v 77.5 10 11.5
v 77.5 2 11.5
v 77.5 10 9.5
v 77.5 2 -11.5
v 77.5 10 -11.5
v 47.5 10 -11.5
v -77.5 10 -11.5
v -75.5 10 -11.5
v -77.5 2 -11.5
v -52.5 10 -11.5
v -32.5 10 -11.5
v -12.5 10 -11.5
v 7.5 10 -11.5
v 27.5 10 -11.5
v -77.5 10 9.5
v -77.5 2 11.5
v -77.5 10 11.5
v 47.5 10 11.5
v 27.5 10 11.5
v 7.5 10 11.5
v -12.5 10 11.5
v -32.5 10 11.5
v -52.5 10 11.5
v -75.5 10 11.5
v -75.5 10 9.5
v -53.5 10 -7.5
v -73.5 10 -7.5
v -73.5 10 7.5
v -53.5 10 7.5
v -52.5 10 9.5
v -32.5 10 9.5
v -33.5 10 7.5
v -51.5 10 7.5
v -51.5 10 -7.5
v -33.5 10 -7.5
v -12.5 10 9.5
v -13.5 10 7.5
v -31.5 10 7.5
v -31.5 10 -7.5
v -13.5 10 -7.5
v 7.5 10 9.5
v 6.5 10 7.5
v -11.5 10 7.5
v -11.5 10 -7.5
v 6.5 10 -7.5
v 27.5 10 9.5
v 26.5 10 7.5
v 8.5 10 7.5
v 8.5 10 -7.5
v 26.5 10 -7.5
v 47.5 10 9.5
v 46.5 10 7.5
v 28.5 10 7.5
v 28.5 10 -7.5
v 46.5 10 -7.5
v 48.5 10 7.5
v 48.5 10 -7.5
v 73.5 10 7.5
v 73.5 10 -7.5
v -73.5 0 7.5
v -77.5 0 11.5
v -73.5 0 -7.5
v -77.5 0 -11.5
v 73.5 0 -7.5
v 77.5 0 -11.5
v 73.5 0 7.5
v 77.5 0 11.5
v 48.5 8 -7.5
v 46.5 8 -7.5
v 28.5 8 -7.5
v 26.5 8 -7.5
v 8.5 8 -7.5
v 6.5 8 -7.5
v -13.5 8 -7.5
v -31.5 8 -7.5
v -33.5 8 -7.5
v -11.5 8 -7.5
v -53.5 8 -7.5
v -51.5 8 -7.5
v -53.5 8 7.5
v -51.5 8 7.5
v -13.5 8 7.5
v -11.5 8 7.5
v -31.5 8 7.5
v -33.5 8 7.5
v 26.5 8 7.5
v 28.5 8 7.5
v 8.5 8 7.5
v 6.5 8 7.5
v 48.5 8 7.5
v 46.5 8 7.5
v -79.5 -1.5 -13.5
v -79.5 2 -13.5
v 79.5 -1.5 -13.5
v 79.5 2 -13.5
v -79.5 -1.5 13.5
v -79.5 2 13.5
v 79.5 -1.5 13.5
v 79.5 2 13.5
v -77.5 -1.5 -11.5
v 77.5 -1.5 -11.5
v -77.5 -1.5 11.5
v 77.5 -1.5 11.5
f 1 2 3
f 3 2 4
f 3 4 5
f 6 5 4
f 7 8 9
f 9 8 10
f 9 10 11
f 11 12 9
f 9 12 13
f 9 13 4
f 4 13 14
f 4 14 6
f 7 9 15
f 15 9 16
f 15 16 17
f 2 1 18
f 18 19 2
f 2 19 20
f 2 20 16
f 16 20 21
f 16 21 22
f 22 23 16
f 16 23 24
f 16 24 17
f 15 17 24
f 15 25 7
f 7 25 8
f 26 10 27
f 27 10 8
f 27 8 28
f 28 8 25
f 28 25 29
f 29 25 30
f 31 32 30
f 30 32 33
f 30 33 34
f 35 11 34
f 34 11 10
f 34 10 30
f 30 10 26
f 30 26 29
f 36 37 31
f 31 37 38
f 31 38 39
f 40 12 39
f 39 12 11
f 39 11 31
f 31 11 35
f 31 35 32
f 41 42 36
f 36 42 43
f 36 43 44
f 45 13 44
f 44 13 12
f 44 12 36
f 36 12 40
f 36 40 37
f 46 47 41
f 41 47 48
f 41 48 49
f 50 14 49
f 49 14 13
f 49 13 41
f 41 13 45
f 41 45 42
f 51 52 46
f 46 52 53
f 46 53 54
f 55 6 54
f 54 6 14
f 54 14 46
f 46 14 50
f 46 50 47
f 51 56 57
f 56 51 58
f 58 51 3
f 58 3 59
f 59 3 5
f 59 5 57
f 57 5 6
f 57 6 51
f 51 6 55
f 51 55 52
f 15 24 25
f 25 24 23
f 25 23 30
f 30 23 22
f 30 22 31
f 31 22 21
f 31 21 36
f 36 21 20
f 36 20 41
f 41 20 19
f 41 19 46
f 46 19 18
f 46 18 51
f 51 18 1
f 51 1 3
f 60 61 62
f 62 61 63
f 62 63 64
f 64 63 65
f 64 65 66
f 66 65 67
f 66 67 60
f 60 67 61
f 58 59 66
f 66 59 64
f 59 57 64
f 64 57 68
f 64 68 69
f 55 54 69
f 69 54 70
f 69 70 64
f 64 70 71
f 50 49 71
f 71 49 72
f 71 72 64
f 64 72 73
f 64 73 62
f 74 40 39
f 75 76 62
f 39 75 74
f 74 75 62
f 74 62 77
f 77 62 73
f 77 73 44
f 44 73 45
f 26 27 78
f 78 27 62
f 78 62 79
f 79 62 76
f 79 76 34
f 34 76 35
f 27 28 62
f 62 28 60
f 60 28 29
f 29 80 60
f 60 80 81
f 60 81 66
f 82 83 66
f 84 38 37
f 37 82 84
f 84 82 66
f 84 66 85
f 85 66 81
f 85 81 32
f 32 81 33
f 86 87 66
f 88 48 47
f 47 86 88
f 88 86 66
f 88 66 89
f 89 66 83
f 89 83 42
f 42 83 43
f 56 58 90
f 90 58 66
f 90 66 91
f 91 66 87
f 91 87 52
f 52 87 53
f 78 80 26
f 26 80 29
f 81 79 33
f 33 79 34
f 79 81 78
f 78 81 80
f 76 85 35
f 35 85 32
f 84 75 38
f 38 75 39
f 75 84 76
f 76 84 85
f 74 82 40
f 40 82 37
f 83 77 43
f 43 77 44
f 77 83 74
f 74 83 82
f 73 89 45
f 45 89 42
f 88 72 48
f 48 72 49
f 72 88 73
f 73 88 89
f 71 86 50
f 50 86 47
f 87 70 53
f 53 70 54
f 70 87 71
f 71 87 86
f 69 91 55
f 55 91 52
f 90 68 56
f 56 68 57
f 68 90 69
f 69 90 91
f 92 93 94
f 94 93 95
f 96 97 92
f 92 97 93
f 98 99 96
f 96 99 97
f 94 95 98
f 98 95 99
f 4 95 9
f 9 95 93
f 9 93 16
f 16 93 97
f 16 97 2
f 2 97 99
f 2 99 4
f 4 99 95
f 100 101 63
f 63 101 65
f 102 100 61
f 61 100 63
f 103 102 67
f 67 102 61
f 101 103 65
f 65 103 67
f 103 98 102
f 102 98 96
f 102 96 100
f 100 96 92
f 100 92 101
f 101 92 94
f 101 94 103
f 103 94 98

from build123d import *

# Parameters (mm, degrees)
SKIZZE1_W                            = 155
SKIZZE1_H                            = 23
SKIZZE1_W_2                          = 147
SKIZZE1_H_2                          = 15
AUFSATZ_LINEAR_AUSTRAGEN1_DEPTH      = 10
SKIZZE2_W                            = 2
SKIZZE2_H                            = 15
AUFSATZ_LINEAR_AUSTRAGEN2_DEPTH      = 2
AUFSATZ_LINEAR_AUSTRAGEN3_DEPTH      = 1.5
AUFSATZ_LINEAR_AUSTRAGEN3_DEPTH_BACK = 2
SKIZZE3_W                            = 159
SKIZZE3_H                            = 27
SKIZZE3_W_2                          = 155
SKIZZE3_H_2                          = 23


with BuildPart() as part:
    # Skizze1 → Aufsatz-Linear austragen1 (new body)
    with BuildSketch(Plane(origin=(0, 0, 0), x_dir=(1, 0, 0), z_dir=(0, 1, 0))):
        Rectangle(SKIZZE1_W, SKIZZE1_H)
        Rectangle(SKIZZE1_W_2, SKIZZE1_H_2, mode=Mode.SUBTRACT)
    extrude(amount=AUFSATZ_LINEAR_AUSTRAGEN1_DEPTH)

    # Skizze2 → Aufsatz-Linear austragen2 (add)
    with BuildSketch(Plane(origin=(0, 10, 0), x_dir=(1, 0, 0), z_dir=(0, 1, 0))):
        with Locations((-52.5, 0)):
            Rectangle(SKIZZE2_W, SKIZZE2_H)
        with Locations((-32.5, 0)):
            Rectangle(SKIZZE2_W, SKIZZE2_H)
        with Locations((-12.5, 0)):
            Rectangle(SKIZZE2_W, SKIZZE2_H)
        with Locations((7.5, 0)):
            Rectangle(SKIZZE2_W, SKIZZE2_H)
        with Locations((27.5, 0)):
            Rectangle(SKIZZE2_W, SKIZZE2_H)
        with Locations((47.5, 0)):
            Rectangle(SKIZZE2_W, SKIZZE2_H)
    extrude(amount=-AUFSATZ_LINEAR_AUSTRAGEN2_DEPTH)

    # Skizze3 → Aufsatz-Linear austragen3 (add, two sides: drawn at the far end of the back side and taken through both)
    with BuildSketch(Plane.XZ.offset(-AUFSATZ_LINEAR_AUSTRAGEN3_DEPTH_BACK)):
        Rectangle(SKIZZE3_W, SKIZZE3_H)
        Rectangle(SKIZZE3_W_2, SKIZZE3_H_2, mode=Mode.SUBTRACT)
    extrude(amount=AUFSATZ_LINEAR_AUSTRAGEN3_DEPTH + AUFSATZ_LINEAR_AUSTRAGEN3_DEPTH_BACK)


solid = part.part
